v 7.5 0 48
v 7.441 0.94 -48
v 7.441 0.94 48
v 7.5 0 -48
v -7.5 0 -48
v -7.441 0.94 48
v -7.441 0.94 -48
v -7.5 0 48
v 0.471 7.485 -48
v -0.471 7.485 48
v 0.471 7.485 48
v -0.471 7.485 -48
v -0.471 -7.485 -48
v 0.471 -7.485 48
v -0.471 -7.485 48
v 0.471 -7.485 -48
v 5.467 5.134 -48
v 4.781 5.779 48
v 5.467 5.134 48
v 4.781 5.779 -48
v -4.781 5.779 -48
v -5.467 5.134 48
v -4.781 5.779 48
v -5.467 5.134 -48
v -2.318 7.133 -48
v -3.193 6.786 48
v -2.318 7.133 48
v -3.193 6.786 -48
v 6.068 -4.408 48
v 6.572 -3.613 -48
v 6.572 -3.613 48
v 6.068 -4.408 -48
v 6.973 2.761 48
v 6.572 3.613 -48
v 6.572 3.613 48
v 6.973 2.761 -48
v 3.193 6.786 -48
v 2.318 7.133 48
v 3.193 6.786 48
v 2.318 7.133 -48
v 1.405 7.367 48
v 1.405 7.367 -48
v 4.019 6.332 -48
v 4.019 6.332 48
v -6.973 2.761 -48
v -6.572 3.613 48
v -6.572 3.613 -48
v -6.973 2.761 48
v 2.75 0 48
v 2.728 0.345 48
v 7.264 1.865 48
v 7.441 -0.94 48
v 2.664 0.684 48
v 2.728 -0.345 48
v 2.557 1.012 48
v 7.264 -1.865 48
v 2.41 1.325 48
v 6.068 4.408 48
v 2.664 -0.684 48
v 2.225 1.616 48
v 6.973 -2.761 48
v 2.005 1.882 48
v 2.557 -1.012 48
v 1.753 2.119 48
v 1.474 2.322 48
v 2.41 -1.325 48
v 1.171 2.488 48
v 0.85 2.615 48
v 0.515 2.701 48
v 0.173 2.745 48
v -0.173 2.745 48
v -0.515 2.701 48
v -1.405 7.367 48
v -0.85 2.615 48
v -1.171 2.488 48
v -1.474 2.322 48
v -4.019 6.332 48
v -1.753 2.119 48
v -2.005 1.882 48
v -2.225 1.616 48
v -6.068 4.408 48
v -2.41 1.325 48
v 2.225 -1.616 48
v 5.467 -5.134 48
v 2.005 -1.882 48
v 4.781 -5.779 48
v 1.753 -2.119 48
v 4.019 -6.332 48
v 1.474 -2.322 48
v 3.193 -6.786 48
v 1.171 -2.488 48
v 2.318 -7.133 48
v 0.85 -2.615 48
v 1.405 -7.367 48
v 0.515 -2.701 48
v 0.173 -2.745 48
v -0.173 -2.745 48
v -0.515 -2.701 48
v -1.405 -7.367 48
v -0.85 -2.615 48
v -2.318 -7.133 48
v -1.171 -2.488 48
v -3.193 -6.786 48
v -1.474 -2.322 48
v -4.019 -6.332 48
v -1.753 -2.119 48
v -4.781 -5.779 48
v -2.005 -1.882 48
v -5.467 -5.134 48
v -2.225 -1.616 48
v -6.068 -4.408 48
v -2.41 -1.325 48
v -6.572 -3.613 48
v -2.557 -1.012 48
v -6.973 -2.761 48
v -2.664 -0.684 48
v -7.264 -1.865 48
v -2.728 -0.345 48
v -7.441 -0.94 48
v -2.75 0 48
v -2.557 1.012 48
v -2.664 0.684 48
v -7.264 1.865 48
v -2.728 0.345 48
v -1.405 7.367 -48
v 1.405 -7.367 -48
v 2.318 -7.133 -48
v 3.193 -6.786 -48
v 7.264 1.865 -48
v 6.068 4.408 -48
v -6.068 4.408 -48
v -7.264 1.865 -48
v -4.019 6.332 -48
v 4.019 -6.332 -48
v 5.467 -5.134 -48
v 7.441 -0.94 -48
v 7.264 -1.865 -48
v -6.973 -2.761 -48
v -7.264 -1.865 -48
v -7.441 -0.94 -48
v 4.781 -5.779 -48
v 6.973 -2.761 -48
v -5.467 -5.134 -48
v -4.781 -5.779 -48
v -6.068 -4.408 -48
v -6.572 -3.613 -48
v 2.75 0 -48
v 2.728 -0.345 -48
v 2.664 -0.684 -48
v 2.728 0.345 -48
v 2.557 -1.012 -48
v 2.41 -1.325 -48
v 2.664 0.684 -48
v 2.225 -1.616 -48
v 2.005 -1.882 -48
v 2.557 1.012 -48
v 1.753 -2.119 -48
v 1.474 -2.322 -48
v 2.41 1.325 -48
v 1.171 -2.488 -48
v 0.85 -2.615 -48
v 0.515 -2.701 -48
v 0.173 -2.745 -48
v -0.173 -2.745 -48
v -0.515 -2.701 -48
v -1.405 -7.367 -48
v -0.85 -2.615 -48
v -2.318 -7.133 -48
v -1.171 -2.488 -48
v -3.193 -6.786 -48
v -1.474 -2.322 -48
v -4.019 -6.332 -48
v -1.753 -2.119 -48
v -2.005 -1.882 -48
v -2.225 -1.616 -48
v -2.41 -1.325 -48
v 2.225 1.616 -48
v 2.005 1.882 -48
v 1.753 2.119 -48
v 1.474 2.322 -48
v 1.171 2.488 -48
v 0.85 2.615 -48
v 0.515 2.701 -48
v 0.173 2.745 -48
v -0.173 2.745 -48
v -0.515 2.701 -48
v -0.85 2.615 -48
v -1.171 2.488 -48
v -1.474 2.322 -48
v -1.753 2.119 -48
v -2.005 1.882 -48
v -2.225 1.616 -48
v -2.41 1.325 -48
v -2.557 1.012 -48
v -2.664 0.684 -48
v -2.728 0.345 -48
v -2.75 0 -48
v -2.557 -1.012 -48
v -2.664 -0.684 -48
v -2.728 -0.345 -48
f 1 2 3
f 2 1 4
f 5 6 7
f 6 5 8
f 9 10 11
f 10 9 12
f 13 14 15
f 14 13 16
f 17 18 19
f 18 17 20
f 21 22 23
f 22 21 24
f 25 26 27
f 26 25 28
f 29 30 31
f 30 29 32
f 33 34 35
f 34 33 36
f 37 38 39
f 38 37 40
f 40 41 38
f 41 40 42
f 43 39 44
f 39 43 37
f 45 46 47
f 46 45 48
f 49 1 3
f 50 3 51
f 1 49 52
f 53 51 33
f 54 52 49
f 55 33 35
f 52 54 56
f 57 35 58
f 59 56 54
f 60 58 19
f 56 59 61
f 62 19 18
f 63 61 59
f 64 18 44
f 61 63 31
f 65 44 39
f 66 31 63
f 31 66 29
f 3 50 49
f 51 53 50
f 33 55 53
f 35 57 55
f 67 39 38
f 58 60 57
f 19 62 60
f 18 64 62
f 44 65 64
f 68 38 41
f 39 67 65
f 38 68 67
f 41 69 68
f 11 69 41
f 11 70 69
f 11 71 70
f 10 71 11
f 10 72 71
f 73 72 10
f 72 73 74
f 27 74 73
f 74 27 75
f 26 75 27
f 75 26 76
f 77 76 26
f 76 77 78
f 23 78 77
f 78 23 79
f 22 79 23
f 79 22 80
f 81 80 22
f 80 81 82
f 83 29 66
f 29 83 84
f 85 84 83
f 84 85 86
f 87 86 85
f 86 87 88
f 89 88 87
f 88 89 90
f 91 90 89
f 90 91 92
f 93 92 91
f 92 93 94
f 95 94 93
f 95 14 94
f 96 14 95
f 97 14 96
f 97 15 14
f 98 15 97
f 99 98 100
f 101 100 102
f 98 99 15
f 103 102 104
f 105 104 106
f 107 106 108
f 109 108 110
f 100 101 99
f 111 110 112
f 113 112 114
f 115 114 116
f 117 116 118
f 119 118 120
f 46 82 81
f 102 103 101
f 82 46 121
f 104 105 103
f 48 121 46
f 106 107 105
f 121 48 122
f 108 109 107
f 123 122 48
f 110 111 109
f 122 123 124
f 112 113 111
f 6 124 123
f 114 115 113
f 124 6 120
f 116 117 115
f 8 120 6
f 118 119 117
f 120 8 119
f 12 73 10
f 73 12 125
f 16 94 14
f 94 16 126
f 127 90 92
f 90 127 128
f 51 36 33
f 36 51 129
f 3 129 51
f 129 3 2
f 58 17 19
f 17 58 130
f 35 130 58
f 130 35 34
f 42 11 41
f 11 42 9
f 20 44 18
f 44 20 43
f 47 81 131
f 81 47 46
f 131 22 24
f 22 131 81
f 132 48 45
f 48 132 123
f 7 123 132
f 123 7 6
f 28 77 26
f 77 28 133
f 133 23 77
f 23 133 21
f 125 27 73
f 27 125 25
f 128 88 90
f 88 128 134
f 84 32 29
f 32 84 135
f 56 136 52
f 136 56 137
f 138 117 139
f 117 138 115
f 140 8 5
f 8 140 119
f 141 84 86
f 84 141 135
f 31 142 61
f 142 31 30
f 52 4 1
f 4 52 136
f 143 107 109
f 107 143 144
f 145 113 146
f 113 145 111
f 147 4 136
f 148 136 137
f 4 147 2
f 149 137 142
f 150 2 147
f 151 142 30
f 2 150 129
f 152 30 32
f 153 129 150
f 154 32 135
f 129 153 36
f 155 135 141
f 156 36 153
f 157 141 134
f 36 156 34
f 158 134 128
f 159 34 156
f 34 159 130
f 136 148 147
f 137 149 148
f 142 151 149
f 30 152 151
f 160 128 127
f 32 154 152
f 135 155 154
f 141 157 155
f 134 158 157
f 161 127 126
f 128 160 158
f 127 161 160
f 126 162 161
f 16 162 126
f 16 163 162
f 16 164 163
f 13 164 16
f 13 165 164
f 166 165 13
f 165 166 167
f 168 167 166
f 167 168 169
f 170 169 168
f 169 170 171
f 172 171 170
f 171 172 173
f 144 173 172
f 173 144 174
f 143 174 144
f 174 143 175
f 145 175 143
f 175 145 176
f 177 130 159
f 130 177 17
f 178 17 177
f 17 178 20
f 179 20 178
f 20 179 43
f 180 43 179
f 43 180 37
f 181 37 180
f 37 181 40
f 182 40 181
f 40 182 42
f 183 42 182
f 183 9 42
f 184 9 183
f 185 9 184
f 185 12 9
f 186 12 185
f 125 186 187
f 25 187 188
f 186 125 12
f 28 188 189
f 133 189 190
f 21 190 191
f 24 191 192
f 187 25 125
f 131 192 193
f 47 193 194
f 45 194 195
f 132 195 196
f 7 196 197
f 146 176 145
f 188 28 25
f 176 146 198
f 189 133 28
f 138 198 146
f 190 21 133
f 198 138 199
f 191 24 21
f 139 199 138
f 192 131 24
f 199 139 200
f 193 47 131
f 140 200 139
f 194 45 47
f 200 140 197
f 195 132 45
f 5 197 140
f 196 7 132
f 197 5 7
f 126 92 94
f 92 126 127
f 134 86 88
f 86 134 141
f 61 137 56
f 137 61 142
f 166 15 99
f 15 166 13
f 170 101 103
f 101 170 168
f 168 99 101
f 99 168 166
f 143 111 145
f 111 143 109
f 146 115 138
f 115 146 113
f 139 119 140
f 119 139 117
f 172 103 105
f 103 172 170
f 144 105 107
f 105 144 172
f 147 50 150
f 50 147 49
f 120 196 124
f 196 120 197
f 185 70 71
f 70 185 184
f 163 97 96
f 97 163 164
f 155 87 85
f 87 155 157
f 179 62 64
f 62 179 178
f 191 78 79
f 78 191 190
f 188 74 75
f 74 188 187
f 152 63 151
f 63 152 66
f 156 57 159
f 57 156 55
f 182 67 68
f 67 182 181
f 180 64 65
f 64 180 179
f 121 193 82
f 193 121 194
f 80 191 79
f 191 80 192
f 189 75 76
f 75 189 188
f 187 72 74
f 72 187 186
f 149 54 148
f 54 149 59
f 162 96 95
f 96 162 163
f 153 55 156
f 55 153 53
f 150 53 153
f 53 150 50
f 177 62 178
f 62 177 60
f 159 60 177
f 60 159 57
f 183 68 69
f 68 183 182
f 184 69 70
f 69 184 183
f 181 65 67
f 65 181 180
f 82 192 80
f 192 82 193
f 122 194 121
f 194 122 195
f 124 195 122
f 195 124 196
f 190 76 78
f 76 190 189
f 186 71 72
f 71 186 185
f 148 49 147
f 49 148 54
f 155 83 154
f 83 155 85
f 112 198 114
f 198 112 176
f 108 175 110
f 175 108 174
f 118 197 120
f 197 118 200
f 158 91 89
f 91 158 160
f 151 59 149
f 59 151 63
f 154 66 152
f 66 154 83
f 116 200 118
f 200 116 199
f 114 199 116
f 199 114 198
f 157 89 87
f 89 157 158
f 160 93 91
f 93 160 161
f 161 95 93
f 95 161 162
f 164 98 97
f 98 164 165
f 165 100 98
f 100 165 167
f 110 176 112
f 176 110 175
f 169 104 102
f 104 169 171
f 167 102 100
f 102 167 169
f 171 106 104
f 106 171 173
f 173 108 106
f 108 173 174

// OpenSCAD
$fn = 50;


difference() {
	union() {
		translate(v = [0, 0, -48.0000000000]) {
			cylinder(h = 96, r = 7.5000000000);
		}
	}
	union() {
		translate(v = [0, 0, -100.0000000000]) {
			cylinder(h = 200, r = 2.7500000000);
		}
	}
}
